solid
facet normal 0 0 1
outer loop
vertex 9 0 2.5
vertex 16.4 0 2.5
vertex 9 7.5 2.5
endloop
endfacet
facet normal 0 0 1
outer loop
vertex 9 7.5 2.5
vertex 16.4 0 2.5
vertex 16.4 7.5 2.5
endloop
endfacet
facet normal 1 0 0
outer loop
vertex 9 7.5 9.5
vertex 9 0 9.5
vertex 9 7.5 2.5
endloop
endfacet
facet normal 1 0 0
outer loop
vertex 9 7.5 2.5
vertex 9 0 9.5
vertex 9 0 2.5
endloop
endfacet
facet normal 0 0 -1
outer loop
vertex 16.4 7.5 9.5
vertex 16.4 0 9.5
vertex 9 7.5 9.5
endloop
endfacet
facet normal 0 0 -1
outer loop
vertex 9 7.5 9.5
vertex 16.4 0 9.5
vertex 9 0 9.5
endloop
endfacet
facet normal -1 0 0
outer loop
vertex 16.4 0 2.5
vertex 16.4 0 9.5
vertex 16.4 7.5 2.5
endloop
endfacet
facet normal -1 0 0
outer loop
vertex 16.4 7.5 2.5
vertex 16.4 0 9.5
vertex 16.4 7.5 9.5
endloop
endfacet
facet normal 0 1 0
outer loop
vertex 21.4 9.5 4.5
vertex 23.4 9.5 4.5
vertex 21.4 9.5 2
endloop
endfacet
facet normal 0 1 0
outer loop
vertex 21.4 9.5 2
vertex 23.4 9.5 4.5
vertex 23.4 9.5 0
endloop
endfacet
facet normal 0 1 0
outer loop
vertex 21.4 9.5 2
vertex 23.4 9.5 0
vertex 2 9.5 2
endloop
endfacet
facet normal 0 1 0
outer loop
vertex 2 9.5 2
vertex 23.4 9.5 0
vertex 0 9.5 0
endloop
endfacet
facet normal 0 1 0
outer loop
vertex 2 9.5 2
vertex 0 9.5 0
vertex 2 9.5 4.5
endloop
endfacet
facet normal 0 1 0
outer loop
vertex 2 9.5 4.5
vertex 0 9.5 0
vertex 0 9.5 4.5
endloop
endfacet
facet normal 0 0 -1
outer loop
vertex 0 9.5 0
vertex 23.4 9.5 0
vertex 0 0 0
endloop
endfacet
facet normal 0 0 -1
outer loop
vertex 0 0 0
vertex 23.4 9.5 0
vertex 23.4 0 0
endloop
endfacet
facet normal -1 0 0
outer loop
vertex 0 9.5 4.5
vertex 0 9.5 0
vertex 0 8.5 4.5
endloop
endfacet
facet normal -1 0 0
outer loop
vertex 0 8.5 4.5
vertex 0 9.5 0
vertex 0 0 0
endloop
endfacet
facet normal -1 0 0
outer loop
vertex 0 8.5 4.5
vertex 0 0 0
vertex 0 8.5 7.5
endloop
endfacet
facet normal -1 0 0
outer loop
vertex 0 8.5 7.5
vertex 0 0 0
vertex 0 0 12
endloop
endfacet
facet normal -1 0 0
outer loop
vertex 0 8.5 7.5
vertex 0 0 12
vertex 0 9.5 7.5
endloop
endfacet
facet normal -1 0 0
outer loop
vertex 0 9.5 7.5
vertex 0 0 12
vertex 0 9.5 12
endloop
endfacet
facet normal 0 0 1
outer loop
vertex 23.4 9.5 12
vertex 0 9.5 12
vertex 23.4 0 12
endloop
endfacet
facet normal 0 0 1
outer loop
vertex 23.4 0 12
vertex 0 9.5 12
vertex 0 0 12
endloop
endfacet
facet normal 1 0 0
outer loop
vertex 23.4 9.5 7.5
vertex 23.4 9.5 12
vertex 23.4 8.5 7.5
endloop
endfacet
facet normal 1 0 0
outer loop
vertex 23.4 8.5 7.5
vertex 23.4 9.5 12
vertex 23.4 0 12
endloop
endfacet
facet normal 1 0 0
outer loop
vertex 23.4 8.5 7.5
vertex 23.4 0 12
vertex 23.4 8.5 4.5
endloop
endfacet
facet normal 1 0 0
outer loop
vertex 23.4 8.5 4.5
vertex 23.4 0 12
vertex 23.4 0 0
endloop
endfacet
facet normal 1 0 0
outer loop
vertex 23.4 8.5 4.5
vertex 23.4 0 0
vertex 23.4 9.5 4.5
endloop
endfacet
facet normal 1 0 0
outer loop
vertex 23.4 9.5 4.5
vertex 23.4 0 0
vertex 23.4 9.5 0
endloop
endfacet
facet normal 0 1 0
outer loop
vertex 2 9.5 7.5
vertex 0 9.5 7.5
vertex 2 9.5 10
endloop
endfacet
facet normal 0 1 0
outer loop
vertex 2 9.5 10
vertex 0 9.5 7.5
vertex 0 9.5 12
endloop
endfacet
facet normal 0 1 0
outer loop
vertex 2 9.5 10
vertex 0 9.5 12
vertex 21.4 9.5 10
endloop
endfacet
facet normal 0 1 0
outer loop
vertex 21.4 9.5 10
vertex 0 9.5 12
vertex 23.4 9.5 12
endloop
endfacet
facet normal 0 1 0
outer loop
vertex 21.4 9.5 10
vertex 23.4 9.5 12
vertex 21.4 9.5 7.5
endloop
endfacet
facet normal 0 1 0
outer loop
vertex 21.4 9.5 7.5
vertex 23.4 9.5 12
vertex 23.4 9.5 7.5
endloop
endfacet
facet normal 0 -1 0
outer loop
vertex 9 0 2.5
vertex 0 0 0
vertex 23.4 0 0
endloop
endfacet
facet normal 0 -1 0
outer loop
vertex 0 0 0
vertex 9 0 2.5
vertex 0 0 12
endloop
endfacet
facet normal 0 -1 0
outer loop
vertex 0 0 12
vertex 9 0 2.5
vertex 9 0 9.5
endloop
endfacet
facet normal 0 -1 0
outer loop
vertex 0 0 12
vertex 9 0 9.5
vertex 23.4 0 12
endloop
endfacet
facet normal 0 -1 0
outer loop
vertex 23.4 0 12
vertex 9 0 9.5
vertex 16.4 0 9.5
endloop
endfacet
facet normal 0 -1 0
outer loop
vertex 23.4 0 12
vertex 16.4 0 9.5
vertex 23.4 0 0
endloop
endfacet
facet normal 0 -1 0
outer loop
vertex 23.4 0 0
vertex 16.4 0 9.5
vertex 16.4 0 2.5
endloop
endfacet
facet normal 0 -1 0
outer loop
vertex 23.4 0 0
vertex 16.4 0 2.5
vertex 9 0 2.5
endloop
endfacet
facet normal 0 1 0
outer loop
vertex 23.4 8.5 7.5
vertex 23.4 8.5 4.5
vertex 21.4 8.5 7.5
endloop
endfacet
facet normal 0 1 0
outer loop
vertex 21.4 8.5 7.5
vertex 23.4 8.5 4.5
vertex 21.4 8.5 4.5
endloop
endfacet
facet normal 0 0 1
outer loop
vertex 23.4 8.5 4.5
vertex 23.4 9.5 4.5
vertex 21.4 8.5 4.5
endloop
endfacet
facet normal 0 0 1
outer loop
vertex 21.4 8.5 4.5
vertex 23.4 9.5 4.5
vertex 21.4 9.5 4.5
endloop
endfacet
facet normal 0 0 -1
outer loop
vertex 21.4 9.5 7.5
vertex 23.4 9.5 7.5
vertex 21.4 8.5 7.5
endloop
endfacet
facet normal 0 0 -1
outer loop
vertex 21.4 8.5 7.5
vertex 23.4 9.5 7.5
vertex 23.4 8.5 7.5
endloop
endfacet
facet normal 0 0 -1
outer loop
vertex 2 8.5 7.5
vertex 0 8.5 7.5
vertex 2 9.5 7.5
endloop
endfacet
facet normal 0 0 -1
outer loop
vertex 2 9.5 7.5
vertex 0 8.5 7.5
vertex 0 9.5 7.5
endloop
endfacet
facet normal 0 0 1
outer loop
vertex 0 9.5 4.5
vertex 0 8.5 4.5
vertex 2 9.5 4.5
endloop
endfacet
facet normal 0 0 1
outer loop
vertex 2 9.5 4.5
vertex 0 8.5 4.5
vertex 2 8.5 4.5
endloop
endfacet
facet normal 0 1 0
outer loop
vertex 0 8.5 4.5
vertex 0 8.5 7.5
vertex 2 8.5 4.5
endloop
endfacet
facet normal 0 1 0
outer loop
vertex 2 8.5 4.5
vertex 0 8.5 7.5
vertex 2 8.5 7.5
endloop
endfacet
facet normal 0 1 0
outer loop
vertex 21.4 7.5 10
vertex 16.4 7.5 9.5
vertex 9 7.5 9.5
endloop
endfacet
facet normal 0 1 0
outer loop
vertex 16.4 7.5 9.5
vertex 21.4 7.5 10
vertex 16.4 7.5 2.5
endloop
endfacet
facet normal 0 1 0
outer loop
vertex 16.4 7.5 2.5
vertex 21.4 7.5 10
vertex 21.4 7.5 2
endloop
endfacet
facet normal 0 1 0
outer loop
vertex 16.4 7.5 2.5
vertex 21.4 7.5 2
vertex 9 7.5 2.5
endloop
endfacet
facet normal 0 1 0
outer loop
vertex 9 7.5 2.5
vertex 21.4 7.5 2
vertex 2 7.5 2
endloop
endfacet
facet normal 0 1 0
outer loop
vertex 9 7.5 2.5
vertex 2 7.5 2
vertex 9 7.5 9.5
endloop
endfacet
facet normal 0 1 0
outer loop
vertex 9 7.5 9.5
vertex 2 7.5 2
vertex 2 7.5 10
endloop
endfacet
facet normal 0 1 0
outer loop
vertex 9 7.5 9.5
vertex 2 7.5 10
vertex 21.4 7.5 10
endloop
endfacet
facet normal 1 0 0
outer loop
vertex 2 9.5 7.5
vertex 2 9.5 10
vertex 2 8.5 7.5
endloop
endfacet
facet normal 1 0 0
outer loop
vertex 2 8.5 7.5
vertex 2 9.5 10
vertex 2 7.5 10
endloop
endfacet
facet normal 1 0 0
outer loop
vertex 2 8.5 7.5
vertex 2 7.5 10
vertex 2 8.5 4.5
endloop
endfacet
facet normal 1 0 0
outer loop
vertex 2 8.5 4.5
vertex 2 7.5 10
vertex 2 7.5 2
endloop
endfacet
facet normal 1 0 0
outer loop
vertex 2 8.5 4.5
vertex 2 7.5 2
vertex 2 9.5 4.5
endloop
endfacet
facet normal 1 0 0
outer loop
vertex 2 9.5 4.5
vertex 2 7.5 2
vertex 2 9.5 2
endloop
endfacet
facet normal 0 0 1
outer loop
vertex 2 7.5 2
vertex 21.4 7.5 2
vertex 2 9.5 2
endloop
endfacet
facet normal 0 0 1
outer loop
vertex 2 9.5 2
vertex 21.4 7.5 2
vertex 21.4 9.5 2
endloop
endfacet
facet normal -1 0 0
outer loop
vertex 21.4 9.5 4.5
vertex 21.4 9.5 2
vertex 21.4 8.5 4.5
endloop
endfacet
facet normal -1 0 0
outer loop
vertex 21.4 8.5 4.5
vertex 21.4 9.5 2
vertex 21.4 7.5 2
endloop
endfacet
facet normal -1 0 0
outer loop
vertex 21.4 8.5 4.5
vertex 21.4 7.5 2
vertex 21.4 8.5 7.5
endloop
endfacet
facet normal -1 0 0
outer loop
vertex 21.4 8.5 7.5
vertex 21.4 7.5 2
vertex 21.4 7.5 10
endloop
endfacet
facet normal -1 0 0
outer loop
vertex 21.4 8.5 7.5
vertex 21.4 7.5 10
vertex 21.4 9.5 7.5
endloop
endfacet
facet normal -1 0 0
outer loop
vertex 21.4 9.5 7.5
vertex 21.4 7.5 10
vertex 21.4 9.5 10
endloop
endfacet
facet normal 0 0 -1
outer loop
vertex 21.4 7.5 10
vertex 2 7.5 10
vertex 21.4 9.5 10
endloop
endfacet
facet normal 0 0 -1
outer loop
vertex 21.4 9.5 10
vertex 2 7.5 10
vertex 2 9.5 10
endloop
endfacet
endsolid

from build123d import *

# Parameters (mm, degrees)
SKETCH_1_W          = 23.4
SKETCH_1_H          = 12
SKETCH_1_W_2        = 7.4
SKETCH_1_H_2        = 7
EXTRUDE_1_DEPTH     = 9.5
CUT_EXTRUDE_START   = 9.5
SKETCH_1_4_W        = 23.4
SKETCH_1_4_H        = 3
CUT_EXTRUDE_2_DEPTH = 1
SKETCH_2_W          = 19.4
SKETCH_2_H          = 8
CUT_EXTRUDE_3_DEPTH = 2


with BuildPart() as part:
    # 草图1 → 凸台-拉伸1 (new body)
    with BuildSketch(Plane(origin=(0, 0, 0), x_dir=(1, 0, 0), z_dir=(0, 1, 0))):
        with Locations((11.7, -6)):
            Rectangle(SKETCH_1_W, SKETCH_1_H)
        with Locations((12.7, -6)):
            Rectangle(SKETCH_1_W_2, SKETCH_1_H_2, mode=Mode.SUBTRACT)
    extrude(amount=EXTRUDE_1_DEPTH)

    # 草图1<4> → 切除-拉伸2 (cut)
    with BuildSketch(Plane(origin=(0, 0, 0), x_dir=(1, 0, 0), z_dir=(0, 1, 0)).offset(CUT_EXTRUDE_START)):
        with Locations((11.7, -6)):
            Rectangle(SKETCH_1_4_W, SKETCH_1_4_H)
    extrude(amount=-CUT_EXTRUDE_2_DEPTH, mode=Mode.SUBTRACT)

    # 草图2 → 切除-拉伸3 (cut)
    with BuildSketch(Plane(origin=(0, 9.5, 0), x_dir=(1, 0, 0), z_dir=(0, 1, 0))):
        with Locations((11.7, -6)):
            Rectangle(SKETCH_2_W, SKETCH_2_H)
    extrude(amount=-CUT_EXTRUDE_3_DEPTH, mode=Mode.SUBTRACT)


solid = part.part
